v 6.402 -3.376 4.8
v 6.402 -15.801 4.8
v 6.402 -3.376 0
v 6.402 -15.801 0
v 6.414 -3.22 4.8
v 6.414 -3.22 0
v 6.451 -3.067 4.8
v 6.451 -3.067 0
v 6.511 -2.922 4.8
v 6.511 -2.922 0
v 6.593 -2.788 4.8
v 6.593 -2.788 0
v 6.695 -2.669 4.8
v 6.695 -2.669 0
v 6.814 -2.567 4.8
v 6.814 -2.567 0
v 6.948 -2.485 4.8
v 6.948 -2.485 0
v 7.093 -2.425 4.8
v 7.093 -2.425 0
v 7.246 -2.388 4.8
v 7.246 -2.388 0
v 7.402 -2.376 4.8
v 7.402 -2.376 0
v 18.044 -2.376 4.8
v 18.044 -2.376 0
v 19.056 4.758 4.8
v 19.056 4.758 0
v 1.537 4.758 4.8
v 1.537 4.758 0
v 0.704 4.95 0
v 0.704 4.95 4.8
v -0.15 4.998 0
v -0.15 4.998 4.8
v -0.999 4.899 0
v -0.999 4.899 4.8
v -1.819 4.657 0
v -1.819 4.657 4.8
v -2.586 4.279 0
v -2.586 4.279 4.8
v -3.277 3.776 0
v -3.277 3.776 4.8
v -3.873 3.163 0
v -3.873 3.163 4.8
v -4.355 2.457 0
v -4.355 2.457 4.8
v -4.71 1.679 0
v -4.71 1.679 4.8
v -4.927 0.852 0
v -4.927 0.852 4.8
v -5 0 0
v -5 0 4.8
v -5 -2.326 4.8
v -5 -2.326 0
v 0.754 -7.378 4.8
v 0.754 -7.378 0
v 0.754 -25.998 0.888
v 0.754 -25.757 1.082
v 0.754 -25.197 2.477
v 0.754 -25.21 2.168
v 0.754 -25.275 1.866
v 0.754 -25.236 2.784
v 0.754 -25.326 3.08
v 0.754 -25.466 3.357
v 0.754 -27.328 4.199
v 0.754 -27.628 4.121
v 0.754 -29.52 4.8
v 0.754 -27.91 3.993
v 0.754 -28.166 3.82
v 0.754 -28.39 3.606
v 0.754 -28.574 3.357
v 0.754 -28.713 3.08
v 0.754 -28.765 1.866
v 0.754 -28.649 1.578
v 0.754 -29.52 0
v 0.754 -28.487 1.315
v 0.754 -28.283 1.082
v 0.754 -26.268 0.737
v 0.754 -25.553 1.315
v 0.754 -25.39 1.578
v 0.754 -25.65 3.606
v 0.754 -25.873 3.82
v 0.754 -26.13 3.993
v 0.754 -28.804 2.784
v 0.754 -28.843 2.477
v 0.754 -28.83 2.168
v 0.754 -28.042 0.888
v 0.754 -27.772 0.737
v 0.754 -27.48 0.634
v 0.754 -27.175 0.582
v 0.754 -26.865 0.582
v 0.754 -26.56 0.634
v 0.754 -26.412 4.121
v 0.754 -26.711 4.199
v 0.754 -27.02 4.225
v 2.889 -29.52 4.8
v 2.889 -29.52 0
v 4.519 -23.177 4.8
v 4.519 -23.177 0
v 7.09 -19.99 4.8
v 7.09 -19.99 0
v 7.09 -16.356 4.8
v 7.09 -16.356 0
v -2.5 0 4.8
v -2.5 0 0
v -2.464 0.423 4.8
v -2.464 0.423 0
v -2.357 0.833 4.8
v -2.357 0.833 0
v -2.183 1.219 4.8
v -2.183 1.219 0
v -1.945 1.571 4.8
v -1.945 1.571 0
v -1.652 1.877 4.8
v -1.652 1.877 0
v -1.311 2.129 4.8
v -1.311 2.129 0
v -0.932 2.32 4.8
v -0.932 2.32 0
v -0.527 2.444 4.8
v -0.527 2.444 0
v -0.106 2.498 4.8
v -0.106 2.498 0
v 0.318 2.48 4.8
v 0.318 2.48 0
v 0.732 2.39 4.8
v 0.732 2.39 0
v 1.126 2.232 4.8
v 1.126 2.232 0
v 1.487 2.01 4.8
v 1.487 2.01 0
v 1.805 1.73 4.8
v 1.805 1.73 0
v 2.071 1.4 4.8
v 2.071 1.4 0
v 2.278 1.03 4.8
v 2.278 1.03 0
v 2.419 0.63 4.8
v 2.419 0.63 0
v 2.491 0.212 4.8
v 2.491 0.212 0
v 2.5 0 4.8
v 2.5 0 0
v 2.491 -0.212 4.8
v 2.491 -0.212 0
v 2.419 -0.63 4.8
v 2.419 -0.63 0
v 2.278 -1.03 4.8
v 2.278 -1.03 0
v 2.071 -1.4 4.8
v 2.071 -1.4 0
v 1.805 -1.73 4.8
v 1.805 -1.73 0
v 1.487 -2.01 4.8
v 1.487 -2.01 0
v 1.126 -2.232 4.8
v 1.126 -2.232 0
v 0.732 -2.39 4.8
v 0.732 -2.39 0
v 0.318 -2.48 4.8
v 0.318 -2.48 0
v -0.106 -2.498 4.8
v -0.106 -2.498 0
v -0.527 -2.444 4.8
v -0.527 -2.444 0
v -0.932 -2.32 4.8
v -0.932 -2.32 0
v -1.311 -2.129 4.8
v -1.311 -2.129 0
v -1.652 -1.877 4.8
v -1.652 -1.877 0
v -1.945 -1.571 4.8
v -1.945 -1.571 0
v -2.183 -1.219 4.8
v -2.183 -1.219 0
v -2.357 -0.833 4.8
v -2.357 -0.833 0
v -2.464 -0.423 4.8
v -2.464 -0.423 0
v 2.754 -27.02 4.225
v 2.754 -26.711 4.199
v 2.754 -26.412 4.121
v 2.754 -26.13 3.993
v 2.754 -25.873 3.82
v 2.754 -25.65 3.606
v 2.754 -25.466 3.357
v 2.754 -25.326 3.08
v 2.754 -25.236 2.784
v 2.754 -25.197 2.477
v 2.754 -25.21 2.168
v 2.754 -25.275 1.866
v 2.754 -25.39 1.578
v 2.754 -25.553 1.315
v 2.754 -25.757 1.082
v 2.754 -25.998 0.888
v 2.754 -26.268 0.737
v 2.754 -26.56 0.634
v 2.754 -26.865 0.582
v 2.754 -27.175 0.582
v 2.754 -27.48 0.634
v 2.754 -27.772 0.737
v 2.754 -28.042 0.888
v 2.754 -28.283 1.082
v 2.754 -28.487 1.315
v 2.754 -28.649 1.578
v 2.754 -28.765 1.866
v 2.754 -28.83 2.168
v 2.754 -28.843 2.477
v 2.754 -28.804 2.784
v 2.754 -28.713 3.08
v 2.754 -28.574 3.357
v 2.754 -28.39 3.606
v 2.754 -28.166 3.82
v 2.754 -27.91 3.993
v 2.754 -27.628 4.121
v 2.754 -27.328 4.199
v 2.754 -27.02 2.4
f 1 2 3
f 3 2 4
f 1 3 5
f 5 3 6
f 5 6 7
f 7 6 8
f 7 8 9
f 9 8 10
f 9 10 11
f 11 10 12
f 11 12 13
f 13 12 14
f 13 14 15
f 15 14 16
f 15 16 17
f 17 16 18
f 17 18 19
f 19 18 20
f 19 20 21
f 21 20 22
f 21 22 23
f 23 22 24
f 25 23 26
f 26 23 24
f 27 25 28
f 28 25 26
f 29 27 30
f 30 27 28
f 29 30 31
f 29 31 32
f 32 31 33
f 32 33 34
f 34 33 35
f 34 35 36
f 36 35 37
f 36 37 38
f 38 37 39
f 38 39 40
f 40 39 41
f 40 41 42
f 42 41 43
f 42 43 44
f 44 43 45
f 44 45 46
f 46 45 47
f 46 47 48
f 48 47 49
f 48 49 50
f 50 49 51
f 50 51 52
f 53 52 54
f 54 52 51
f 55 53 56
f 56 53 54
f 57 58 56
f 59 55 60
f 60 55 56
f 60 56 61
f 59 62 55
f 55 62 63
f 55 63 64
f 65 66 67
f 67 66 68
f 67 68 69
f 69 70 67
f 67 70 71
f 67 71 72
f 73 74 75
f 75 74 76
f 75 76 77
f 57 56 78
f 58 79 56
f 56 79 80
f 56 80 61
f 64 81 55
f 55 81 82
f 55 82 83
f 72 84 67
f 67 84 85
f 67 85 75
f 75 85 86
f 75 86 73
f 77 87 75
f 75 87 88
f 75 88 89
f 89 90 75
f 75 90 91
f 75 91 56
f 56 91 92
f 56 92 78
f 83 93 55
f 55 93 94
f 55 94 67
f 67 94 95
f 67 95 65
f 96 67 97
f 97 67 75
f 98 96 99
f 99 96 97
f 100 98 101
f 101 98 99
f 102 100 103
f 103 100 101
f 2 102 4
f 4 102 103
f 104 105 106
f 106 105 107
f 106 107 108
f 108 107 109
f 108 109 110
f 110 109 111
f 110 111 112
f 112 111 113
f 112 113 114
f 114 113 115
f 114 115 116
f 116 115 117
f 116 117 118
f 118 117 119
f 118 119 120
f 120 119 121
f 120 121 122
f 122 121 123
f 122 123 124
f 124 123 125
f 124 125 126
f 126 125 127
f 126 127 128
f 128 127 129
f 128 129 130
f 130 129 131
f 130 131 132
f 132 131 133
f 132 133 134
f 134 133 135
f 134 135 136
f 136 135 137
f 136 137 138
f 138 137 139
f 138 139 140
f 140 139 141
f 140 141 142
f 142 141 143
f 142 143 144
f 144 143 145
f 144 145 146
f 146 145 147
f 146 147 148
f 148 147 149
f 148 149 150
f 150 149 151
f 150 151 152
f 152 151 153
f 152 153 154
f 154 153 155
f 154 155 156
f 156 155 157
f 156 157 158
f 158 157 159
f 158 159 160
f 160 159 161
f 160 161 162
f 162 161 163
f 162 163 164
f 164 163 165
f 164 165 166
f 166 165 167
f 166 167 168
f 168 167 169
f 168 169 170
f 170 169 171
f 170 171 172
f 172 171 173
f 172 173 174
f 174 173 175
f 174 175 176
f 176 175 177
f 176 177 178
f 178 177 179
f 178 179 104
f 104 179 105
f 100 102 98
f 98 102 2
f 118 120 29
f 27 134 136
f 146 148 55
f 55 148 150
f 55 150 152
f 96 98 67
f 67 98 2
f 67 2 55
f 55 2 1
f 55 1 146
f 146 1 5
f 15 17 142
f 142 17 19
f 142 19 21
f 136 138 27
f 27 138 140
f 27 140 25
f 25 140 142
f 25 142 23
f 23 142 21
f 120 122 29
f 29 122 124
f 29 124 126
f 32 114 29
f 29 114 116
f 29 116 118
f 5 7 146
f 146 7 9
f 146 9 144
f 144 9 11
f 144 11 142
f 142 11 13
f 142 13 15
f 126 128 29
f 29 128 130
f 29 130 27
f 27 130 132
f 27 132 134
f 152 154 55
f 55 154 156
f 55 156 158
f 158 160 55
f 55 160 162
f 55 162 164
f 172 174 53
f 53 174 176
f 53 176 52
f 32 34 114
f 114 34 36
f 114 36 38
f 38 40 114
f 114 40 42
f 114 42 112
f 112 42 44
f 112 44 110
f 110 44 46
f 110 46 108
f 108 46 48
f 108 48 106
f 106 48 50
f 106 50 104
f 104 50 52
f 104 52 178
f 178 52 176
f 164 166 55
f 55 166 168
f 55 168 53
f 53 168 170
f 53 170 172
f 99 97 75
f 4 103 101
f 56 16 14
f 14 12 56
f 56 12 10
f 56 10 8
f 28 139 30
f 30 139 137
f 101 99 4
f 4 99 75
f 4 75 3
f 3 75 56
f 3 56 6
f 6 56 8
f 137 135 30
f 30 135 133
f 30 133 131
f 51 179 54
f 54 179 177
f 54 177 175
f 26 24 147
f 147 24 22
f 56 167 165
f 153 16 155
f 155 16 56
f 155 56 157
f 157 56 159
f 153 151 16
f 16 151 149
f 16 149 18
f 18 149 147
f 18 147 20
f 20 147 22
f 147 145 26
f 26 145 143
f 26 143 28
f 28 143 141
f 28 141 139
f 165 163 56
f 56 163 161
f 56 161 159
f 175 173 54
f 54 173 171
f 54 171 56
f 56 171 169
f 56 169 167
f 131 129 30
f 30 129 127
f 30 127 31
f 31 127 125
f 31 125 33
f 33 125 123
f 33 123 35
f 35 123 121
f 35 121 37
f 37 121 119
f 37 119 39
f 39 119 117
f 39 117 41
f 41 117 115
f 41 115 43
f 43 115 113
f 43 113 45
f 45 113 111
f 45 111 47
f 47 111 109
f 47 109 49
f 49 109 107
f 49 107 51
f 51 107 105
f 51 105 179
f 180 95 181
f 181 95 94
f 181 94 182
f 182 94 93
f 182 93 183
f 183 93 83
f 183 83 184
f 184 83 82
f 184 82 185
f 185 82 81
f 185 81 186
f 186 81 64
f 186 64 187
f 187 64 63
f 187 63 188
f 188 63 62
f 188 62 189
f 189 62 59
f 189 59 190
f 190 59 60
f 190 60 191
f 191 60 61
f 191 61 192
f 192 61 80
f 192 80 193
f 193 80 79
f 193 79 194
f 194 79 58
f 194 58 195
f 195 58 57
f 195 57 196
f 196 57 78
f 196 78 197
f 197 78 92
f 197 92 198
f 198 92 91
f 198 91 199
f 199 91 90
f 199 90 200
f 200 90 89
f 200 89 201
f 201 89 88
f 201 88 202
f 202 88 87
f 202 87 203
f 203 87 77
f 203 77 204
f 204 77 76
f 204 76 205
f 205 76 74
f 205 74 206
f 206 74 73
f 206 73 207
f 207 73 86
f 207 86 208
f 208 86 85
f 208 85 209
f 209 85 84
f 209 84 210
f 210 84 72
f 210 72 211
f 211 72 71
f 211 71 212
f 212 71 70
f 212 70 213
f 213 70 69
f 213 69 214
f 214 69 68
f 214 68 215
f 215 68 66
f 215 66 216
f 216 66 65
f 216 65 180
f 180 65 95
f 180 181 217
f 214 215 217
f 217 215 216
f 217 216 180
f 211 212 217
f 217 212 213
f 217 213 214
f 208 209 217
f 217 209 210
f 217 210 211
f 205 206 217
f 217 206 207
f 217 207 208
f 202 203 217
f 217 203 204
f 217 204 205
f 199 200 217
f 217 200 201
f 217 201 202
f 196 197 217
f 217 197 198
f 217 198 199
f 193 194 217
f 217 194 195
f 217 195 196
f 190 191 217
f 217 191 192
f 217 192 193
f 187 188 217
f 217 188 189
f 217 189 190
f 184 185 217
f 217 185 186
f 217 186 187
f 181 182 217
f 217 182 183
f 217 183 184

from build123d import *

# Parameters (mm, degrees)
SKETCH_1_R          = 5
SKETCH_1_R_2        = 2.5
EXTRUDE_1_DEPTH     = 4.8
SKETCH_3_R          = 1.825
CUT_EXTRUDE_1_DEPTH = 2


with BuildPart() as part:
    # 스케치1 → 보스-돌출1 (new body)
    # profile 1 of 2: a face of its own
    with BuildSketch(Plane.XY):
        with BuildLine():
            ThreePointArc((5, 0), (0, -5), (-5, 0))
            Line((-5, 0), (-5, -2.326474397))
            Line((-5, -2.326474397), (0.754164722, -7.377840375))
            Line((0.754164722, -7.377840375), (0.754164722, -29.519890116))
            Line((0.754164722, -29.519890116), (2.889052882, -29.519890116))
            Line((2.889052882, -29.519890116), (4.518521564, -23.177422563))
            Line((4.518521564, -23.177422563), (7.08991094, -19.990348408))
            Line((7.08991094, -19.990348408), (7.08991094, -16.35629501))
            Line((7.08991094, -16.35629501), (6.40208237, -15.801342415))
            Line((6.40208237, -15.801342415), (6.40208237, -3.376138068))
            ThreePointArc((6.40208237, -3.376138068), (6.694975589, -2.669031287), (7.40208237, -2.376138068))
            Line((7.40208237, -2.376138068), (18.043960793, -2.376138068))
            Line((18.043960793, -2.376138068), (19.056002599, 4.757997197))
            Line((19.056002599, 4.757997197), (1.536705134, 4.757997197))
            ThreePointArc((1.536705134, 4.757997197), (4.04249463, 2.942488261), (5, 0))
        make_face()
    # profile 2 of 2: a face of its own
    with BuildSketch(Plane.XY):
        Circle(SKETCH_1_R)
        Circle(SKETCH_1_R_2, mode=Mode.SUBTRACT)
    extrude(amount=EXTRUDE_1_DEPTH)

    # 스케치3 → 컷-돌출1 (cut)
    with BuildSketch(Plane.ZY.offset(-0.754164722)):
        with Locations((2.4, -27.019890116)):
            Circle(SKETCH_3_R)
    extrude(amount=-CUT_EXTRUDE_1_DEPTH, mode=Mode.SUBTRACT)


solid = part.part
